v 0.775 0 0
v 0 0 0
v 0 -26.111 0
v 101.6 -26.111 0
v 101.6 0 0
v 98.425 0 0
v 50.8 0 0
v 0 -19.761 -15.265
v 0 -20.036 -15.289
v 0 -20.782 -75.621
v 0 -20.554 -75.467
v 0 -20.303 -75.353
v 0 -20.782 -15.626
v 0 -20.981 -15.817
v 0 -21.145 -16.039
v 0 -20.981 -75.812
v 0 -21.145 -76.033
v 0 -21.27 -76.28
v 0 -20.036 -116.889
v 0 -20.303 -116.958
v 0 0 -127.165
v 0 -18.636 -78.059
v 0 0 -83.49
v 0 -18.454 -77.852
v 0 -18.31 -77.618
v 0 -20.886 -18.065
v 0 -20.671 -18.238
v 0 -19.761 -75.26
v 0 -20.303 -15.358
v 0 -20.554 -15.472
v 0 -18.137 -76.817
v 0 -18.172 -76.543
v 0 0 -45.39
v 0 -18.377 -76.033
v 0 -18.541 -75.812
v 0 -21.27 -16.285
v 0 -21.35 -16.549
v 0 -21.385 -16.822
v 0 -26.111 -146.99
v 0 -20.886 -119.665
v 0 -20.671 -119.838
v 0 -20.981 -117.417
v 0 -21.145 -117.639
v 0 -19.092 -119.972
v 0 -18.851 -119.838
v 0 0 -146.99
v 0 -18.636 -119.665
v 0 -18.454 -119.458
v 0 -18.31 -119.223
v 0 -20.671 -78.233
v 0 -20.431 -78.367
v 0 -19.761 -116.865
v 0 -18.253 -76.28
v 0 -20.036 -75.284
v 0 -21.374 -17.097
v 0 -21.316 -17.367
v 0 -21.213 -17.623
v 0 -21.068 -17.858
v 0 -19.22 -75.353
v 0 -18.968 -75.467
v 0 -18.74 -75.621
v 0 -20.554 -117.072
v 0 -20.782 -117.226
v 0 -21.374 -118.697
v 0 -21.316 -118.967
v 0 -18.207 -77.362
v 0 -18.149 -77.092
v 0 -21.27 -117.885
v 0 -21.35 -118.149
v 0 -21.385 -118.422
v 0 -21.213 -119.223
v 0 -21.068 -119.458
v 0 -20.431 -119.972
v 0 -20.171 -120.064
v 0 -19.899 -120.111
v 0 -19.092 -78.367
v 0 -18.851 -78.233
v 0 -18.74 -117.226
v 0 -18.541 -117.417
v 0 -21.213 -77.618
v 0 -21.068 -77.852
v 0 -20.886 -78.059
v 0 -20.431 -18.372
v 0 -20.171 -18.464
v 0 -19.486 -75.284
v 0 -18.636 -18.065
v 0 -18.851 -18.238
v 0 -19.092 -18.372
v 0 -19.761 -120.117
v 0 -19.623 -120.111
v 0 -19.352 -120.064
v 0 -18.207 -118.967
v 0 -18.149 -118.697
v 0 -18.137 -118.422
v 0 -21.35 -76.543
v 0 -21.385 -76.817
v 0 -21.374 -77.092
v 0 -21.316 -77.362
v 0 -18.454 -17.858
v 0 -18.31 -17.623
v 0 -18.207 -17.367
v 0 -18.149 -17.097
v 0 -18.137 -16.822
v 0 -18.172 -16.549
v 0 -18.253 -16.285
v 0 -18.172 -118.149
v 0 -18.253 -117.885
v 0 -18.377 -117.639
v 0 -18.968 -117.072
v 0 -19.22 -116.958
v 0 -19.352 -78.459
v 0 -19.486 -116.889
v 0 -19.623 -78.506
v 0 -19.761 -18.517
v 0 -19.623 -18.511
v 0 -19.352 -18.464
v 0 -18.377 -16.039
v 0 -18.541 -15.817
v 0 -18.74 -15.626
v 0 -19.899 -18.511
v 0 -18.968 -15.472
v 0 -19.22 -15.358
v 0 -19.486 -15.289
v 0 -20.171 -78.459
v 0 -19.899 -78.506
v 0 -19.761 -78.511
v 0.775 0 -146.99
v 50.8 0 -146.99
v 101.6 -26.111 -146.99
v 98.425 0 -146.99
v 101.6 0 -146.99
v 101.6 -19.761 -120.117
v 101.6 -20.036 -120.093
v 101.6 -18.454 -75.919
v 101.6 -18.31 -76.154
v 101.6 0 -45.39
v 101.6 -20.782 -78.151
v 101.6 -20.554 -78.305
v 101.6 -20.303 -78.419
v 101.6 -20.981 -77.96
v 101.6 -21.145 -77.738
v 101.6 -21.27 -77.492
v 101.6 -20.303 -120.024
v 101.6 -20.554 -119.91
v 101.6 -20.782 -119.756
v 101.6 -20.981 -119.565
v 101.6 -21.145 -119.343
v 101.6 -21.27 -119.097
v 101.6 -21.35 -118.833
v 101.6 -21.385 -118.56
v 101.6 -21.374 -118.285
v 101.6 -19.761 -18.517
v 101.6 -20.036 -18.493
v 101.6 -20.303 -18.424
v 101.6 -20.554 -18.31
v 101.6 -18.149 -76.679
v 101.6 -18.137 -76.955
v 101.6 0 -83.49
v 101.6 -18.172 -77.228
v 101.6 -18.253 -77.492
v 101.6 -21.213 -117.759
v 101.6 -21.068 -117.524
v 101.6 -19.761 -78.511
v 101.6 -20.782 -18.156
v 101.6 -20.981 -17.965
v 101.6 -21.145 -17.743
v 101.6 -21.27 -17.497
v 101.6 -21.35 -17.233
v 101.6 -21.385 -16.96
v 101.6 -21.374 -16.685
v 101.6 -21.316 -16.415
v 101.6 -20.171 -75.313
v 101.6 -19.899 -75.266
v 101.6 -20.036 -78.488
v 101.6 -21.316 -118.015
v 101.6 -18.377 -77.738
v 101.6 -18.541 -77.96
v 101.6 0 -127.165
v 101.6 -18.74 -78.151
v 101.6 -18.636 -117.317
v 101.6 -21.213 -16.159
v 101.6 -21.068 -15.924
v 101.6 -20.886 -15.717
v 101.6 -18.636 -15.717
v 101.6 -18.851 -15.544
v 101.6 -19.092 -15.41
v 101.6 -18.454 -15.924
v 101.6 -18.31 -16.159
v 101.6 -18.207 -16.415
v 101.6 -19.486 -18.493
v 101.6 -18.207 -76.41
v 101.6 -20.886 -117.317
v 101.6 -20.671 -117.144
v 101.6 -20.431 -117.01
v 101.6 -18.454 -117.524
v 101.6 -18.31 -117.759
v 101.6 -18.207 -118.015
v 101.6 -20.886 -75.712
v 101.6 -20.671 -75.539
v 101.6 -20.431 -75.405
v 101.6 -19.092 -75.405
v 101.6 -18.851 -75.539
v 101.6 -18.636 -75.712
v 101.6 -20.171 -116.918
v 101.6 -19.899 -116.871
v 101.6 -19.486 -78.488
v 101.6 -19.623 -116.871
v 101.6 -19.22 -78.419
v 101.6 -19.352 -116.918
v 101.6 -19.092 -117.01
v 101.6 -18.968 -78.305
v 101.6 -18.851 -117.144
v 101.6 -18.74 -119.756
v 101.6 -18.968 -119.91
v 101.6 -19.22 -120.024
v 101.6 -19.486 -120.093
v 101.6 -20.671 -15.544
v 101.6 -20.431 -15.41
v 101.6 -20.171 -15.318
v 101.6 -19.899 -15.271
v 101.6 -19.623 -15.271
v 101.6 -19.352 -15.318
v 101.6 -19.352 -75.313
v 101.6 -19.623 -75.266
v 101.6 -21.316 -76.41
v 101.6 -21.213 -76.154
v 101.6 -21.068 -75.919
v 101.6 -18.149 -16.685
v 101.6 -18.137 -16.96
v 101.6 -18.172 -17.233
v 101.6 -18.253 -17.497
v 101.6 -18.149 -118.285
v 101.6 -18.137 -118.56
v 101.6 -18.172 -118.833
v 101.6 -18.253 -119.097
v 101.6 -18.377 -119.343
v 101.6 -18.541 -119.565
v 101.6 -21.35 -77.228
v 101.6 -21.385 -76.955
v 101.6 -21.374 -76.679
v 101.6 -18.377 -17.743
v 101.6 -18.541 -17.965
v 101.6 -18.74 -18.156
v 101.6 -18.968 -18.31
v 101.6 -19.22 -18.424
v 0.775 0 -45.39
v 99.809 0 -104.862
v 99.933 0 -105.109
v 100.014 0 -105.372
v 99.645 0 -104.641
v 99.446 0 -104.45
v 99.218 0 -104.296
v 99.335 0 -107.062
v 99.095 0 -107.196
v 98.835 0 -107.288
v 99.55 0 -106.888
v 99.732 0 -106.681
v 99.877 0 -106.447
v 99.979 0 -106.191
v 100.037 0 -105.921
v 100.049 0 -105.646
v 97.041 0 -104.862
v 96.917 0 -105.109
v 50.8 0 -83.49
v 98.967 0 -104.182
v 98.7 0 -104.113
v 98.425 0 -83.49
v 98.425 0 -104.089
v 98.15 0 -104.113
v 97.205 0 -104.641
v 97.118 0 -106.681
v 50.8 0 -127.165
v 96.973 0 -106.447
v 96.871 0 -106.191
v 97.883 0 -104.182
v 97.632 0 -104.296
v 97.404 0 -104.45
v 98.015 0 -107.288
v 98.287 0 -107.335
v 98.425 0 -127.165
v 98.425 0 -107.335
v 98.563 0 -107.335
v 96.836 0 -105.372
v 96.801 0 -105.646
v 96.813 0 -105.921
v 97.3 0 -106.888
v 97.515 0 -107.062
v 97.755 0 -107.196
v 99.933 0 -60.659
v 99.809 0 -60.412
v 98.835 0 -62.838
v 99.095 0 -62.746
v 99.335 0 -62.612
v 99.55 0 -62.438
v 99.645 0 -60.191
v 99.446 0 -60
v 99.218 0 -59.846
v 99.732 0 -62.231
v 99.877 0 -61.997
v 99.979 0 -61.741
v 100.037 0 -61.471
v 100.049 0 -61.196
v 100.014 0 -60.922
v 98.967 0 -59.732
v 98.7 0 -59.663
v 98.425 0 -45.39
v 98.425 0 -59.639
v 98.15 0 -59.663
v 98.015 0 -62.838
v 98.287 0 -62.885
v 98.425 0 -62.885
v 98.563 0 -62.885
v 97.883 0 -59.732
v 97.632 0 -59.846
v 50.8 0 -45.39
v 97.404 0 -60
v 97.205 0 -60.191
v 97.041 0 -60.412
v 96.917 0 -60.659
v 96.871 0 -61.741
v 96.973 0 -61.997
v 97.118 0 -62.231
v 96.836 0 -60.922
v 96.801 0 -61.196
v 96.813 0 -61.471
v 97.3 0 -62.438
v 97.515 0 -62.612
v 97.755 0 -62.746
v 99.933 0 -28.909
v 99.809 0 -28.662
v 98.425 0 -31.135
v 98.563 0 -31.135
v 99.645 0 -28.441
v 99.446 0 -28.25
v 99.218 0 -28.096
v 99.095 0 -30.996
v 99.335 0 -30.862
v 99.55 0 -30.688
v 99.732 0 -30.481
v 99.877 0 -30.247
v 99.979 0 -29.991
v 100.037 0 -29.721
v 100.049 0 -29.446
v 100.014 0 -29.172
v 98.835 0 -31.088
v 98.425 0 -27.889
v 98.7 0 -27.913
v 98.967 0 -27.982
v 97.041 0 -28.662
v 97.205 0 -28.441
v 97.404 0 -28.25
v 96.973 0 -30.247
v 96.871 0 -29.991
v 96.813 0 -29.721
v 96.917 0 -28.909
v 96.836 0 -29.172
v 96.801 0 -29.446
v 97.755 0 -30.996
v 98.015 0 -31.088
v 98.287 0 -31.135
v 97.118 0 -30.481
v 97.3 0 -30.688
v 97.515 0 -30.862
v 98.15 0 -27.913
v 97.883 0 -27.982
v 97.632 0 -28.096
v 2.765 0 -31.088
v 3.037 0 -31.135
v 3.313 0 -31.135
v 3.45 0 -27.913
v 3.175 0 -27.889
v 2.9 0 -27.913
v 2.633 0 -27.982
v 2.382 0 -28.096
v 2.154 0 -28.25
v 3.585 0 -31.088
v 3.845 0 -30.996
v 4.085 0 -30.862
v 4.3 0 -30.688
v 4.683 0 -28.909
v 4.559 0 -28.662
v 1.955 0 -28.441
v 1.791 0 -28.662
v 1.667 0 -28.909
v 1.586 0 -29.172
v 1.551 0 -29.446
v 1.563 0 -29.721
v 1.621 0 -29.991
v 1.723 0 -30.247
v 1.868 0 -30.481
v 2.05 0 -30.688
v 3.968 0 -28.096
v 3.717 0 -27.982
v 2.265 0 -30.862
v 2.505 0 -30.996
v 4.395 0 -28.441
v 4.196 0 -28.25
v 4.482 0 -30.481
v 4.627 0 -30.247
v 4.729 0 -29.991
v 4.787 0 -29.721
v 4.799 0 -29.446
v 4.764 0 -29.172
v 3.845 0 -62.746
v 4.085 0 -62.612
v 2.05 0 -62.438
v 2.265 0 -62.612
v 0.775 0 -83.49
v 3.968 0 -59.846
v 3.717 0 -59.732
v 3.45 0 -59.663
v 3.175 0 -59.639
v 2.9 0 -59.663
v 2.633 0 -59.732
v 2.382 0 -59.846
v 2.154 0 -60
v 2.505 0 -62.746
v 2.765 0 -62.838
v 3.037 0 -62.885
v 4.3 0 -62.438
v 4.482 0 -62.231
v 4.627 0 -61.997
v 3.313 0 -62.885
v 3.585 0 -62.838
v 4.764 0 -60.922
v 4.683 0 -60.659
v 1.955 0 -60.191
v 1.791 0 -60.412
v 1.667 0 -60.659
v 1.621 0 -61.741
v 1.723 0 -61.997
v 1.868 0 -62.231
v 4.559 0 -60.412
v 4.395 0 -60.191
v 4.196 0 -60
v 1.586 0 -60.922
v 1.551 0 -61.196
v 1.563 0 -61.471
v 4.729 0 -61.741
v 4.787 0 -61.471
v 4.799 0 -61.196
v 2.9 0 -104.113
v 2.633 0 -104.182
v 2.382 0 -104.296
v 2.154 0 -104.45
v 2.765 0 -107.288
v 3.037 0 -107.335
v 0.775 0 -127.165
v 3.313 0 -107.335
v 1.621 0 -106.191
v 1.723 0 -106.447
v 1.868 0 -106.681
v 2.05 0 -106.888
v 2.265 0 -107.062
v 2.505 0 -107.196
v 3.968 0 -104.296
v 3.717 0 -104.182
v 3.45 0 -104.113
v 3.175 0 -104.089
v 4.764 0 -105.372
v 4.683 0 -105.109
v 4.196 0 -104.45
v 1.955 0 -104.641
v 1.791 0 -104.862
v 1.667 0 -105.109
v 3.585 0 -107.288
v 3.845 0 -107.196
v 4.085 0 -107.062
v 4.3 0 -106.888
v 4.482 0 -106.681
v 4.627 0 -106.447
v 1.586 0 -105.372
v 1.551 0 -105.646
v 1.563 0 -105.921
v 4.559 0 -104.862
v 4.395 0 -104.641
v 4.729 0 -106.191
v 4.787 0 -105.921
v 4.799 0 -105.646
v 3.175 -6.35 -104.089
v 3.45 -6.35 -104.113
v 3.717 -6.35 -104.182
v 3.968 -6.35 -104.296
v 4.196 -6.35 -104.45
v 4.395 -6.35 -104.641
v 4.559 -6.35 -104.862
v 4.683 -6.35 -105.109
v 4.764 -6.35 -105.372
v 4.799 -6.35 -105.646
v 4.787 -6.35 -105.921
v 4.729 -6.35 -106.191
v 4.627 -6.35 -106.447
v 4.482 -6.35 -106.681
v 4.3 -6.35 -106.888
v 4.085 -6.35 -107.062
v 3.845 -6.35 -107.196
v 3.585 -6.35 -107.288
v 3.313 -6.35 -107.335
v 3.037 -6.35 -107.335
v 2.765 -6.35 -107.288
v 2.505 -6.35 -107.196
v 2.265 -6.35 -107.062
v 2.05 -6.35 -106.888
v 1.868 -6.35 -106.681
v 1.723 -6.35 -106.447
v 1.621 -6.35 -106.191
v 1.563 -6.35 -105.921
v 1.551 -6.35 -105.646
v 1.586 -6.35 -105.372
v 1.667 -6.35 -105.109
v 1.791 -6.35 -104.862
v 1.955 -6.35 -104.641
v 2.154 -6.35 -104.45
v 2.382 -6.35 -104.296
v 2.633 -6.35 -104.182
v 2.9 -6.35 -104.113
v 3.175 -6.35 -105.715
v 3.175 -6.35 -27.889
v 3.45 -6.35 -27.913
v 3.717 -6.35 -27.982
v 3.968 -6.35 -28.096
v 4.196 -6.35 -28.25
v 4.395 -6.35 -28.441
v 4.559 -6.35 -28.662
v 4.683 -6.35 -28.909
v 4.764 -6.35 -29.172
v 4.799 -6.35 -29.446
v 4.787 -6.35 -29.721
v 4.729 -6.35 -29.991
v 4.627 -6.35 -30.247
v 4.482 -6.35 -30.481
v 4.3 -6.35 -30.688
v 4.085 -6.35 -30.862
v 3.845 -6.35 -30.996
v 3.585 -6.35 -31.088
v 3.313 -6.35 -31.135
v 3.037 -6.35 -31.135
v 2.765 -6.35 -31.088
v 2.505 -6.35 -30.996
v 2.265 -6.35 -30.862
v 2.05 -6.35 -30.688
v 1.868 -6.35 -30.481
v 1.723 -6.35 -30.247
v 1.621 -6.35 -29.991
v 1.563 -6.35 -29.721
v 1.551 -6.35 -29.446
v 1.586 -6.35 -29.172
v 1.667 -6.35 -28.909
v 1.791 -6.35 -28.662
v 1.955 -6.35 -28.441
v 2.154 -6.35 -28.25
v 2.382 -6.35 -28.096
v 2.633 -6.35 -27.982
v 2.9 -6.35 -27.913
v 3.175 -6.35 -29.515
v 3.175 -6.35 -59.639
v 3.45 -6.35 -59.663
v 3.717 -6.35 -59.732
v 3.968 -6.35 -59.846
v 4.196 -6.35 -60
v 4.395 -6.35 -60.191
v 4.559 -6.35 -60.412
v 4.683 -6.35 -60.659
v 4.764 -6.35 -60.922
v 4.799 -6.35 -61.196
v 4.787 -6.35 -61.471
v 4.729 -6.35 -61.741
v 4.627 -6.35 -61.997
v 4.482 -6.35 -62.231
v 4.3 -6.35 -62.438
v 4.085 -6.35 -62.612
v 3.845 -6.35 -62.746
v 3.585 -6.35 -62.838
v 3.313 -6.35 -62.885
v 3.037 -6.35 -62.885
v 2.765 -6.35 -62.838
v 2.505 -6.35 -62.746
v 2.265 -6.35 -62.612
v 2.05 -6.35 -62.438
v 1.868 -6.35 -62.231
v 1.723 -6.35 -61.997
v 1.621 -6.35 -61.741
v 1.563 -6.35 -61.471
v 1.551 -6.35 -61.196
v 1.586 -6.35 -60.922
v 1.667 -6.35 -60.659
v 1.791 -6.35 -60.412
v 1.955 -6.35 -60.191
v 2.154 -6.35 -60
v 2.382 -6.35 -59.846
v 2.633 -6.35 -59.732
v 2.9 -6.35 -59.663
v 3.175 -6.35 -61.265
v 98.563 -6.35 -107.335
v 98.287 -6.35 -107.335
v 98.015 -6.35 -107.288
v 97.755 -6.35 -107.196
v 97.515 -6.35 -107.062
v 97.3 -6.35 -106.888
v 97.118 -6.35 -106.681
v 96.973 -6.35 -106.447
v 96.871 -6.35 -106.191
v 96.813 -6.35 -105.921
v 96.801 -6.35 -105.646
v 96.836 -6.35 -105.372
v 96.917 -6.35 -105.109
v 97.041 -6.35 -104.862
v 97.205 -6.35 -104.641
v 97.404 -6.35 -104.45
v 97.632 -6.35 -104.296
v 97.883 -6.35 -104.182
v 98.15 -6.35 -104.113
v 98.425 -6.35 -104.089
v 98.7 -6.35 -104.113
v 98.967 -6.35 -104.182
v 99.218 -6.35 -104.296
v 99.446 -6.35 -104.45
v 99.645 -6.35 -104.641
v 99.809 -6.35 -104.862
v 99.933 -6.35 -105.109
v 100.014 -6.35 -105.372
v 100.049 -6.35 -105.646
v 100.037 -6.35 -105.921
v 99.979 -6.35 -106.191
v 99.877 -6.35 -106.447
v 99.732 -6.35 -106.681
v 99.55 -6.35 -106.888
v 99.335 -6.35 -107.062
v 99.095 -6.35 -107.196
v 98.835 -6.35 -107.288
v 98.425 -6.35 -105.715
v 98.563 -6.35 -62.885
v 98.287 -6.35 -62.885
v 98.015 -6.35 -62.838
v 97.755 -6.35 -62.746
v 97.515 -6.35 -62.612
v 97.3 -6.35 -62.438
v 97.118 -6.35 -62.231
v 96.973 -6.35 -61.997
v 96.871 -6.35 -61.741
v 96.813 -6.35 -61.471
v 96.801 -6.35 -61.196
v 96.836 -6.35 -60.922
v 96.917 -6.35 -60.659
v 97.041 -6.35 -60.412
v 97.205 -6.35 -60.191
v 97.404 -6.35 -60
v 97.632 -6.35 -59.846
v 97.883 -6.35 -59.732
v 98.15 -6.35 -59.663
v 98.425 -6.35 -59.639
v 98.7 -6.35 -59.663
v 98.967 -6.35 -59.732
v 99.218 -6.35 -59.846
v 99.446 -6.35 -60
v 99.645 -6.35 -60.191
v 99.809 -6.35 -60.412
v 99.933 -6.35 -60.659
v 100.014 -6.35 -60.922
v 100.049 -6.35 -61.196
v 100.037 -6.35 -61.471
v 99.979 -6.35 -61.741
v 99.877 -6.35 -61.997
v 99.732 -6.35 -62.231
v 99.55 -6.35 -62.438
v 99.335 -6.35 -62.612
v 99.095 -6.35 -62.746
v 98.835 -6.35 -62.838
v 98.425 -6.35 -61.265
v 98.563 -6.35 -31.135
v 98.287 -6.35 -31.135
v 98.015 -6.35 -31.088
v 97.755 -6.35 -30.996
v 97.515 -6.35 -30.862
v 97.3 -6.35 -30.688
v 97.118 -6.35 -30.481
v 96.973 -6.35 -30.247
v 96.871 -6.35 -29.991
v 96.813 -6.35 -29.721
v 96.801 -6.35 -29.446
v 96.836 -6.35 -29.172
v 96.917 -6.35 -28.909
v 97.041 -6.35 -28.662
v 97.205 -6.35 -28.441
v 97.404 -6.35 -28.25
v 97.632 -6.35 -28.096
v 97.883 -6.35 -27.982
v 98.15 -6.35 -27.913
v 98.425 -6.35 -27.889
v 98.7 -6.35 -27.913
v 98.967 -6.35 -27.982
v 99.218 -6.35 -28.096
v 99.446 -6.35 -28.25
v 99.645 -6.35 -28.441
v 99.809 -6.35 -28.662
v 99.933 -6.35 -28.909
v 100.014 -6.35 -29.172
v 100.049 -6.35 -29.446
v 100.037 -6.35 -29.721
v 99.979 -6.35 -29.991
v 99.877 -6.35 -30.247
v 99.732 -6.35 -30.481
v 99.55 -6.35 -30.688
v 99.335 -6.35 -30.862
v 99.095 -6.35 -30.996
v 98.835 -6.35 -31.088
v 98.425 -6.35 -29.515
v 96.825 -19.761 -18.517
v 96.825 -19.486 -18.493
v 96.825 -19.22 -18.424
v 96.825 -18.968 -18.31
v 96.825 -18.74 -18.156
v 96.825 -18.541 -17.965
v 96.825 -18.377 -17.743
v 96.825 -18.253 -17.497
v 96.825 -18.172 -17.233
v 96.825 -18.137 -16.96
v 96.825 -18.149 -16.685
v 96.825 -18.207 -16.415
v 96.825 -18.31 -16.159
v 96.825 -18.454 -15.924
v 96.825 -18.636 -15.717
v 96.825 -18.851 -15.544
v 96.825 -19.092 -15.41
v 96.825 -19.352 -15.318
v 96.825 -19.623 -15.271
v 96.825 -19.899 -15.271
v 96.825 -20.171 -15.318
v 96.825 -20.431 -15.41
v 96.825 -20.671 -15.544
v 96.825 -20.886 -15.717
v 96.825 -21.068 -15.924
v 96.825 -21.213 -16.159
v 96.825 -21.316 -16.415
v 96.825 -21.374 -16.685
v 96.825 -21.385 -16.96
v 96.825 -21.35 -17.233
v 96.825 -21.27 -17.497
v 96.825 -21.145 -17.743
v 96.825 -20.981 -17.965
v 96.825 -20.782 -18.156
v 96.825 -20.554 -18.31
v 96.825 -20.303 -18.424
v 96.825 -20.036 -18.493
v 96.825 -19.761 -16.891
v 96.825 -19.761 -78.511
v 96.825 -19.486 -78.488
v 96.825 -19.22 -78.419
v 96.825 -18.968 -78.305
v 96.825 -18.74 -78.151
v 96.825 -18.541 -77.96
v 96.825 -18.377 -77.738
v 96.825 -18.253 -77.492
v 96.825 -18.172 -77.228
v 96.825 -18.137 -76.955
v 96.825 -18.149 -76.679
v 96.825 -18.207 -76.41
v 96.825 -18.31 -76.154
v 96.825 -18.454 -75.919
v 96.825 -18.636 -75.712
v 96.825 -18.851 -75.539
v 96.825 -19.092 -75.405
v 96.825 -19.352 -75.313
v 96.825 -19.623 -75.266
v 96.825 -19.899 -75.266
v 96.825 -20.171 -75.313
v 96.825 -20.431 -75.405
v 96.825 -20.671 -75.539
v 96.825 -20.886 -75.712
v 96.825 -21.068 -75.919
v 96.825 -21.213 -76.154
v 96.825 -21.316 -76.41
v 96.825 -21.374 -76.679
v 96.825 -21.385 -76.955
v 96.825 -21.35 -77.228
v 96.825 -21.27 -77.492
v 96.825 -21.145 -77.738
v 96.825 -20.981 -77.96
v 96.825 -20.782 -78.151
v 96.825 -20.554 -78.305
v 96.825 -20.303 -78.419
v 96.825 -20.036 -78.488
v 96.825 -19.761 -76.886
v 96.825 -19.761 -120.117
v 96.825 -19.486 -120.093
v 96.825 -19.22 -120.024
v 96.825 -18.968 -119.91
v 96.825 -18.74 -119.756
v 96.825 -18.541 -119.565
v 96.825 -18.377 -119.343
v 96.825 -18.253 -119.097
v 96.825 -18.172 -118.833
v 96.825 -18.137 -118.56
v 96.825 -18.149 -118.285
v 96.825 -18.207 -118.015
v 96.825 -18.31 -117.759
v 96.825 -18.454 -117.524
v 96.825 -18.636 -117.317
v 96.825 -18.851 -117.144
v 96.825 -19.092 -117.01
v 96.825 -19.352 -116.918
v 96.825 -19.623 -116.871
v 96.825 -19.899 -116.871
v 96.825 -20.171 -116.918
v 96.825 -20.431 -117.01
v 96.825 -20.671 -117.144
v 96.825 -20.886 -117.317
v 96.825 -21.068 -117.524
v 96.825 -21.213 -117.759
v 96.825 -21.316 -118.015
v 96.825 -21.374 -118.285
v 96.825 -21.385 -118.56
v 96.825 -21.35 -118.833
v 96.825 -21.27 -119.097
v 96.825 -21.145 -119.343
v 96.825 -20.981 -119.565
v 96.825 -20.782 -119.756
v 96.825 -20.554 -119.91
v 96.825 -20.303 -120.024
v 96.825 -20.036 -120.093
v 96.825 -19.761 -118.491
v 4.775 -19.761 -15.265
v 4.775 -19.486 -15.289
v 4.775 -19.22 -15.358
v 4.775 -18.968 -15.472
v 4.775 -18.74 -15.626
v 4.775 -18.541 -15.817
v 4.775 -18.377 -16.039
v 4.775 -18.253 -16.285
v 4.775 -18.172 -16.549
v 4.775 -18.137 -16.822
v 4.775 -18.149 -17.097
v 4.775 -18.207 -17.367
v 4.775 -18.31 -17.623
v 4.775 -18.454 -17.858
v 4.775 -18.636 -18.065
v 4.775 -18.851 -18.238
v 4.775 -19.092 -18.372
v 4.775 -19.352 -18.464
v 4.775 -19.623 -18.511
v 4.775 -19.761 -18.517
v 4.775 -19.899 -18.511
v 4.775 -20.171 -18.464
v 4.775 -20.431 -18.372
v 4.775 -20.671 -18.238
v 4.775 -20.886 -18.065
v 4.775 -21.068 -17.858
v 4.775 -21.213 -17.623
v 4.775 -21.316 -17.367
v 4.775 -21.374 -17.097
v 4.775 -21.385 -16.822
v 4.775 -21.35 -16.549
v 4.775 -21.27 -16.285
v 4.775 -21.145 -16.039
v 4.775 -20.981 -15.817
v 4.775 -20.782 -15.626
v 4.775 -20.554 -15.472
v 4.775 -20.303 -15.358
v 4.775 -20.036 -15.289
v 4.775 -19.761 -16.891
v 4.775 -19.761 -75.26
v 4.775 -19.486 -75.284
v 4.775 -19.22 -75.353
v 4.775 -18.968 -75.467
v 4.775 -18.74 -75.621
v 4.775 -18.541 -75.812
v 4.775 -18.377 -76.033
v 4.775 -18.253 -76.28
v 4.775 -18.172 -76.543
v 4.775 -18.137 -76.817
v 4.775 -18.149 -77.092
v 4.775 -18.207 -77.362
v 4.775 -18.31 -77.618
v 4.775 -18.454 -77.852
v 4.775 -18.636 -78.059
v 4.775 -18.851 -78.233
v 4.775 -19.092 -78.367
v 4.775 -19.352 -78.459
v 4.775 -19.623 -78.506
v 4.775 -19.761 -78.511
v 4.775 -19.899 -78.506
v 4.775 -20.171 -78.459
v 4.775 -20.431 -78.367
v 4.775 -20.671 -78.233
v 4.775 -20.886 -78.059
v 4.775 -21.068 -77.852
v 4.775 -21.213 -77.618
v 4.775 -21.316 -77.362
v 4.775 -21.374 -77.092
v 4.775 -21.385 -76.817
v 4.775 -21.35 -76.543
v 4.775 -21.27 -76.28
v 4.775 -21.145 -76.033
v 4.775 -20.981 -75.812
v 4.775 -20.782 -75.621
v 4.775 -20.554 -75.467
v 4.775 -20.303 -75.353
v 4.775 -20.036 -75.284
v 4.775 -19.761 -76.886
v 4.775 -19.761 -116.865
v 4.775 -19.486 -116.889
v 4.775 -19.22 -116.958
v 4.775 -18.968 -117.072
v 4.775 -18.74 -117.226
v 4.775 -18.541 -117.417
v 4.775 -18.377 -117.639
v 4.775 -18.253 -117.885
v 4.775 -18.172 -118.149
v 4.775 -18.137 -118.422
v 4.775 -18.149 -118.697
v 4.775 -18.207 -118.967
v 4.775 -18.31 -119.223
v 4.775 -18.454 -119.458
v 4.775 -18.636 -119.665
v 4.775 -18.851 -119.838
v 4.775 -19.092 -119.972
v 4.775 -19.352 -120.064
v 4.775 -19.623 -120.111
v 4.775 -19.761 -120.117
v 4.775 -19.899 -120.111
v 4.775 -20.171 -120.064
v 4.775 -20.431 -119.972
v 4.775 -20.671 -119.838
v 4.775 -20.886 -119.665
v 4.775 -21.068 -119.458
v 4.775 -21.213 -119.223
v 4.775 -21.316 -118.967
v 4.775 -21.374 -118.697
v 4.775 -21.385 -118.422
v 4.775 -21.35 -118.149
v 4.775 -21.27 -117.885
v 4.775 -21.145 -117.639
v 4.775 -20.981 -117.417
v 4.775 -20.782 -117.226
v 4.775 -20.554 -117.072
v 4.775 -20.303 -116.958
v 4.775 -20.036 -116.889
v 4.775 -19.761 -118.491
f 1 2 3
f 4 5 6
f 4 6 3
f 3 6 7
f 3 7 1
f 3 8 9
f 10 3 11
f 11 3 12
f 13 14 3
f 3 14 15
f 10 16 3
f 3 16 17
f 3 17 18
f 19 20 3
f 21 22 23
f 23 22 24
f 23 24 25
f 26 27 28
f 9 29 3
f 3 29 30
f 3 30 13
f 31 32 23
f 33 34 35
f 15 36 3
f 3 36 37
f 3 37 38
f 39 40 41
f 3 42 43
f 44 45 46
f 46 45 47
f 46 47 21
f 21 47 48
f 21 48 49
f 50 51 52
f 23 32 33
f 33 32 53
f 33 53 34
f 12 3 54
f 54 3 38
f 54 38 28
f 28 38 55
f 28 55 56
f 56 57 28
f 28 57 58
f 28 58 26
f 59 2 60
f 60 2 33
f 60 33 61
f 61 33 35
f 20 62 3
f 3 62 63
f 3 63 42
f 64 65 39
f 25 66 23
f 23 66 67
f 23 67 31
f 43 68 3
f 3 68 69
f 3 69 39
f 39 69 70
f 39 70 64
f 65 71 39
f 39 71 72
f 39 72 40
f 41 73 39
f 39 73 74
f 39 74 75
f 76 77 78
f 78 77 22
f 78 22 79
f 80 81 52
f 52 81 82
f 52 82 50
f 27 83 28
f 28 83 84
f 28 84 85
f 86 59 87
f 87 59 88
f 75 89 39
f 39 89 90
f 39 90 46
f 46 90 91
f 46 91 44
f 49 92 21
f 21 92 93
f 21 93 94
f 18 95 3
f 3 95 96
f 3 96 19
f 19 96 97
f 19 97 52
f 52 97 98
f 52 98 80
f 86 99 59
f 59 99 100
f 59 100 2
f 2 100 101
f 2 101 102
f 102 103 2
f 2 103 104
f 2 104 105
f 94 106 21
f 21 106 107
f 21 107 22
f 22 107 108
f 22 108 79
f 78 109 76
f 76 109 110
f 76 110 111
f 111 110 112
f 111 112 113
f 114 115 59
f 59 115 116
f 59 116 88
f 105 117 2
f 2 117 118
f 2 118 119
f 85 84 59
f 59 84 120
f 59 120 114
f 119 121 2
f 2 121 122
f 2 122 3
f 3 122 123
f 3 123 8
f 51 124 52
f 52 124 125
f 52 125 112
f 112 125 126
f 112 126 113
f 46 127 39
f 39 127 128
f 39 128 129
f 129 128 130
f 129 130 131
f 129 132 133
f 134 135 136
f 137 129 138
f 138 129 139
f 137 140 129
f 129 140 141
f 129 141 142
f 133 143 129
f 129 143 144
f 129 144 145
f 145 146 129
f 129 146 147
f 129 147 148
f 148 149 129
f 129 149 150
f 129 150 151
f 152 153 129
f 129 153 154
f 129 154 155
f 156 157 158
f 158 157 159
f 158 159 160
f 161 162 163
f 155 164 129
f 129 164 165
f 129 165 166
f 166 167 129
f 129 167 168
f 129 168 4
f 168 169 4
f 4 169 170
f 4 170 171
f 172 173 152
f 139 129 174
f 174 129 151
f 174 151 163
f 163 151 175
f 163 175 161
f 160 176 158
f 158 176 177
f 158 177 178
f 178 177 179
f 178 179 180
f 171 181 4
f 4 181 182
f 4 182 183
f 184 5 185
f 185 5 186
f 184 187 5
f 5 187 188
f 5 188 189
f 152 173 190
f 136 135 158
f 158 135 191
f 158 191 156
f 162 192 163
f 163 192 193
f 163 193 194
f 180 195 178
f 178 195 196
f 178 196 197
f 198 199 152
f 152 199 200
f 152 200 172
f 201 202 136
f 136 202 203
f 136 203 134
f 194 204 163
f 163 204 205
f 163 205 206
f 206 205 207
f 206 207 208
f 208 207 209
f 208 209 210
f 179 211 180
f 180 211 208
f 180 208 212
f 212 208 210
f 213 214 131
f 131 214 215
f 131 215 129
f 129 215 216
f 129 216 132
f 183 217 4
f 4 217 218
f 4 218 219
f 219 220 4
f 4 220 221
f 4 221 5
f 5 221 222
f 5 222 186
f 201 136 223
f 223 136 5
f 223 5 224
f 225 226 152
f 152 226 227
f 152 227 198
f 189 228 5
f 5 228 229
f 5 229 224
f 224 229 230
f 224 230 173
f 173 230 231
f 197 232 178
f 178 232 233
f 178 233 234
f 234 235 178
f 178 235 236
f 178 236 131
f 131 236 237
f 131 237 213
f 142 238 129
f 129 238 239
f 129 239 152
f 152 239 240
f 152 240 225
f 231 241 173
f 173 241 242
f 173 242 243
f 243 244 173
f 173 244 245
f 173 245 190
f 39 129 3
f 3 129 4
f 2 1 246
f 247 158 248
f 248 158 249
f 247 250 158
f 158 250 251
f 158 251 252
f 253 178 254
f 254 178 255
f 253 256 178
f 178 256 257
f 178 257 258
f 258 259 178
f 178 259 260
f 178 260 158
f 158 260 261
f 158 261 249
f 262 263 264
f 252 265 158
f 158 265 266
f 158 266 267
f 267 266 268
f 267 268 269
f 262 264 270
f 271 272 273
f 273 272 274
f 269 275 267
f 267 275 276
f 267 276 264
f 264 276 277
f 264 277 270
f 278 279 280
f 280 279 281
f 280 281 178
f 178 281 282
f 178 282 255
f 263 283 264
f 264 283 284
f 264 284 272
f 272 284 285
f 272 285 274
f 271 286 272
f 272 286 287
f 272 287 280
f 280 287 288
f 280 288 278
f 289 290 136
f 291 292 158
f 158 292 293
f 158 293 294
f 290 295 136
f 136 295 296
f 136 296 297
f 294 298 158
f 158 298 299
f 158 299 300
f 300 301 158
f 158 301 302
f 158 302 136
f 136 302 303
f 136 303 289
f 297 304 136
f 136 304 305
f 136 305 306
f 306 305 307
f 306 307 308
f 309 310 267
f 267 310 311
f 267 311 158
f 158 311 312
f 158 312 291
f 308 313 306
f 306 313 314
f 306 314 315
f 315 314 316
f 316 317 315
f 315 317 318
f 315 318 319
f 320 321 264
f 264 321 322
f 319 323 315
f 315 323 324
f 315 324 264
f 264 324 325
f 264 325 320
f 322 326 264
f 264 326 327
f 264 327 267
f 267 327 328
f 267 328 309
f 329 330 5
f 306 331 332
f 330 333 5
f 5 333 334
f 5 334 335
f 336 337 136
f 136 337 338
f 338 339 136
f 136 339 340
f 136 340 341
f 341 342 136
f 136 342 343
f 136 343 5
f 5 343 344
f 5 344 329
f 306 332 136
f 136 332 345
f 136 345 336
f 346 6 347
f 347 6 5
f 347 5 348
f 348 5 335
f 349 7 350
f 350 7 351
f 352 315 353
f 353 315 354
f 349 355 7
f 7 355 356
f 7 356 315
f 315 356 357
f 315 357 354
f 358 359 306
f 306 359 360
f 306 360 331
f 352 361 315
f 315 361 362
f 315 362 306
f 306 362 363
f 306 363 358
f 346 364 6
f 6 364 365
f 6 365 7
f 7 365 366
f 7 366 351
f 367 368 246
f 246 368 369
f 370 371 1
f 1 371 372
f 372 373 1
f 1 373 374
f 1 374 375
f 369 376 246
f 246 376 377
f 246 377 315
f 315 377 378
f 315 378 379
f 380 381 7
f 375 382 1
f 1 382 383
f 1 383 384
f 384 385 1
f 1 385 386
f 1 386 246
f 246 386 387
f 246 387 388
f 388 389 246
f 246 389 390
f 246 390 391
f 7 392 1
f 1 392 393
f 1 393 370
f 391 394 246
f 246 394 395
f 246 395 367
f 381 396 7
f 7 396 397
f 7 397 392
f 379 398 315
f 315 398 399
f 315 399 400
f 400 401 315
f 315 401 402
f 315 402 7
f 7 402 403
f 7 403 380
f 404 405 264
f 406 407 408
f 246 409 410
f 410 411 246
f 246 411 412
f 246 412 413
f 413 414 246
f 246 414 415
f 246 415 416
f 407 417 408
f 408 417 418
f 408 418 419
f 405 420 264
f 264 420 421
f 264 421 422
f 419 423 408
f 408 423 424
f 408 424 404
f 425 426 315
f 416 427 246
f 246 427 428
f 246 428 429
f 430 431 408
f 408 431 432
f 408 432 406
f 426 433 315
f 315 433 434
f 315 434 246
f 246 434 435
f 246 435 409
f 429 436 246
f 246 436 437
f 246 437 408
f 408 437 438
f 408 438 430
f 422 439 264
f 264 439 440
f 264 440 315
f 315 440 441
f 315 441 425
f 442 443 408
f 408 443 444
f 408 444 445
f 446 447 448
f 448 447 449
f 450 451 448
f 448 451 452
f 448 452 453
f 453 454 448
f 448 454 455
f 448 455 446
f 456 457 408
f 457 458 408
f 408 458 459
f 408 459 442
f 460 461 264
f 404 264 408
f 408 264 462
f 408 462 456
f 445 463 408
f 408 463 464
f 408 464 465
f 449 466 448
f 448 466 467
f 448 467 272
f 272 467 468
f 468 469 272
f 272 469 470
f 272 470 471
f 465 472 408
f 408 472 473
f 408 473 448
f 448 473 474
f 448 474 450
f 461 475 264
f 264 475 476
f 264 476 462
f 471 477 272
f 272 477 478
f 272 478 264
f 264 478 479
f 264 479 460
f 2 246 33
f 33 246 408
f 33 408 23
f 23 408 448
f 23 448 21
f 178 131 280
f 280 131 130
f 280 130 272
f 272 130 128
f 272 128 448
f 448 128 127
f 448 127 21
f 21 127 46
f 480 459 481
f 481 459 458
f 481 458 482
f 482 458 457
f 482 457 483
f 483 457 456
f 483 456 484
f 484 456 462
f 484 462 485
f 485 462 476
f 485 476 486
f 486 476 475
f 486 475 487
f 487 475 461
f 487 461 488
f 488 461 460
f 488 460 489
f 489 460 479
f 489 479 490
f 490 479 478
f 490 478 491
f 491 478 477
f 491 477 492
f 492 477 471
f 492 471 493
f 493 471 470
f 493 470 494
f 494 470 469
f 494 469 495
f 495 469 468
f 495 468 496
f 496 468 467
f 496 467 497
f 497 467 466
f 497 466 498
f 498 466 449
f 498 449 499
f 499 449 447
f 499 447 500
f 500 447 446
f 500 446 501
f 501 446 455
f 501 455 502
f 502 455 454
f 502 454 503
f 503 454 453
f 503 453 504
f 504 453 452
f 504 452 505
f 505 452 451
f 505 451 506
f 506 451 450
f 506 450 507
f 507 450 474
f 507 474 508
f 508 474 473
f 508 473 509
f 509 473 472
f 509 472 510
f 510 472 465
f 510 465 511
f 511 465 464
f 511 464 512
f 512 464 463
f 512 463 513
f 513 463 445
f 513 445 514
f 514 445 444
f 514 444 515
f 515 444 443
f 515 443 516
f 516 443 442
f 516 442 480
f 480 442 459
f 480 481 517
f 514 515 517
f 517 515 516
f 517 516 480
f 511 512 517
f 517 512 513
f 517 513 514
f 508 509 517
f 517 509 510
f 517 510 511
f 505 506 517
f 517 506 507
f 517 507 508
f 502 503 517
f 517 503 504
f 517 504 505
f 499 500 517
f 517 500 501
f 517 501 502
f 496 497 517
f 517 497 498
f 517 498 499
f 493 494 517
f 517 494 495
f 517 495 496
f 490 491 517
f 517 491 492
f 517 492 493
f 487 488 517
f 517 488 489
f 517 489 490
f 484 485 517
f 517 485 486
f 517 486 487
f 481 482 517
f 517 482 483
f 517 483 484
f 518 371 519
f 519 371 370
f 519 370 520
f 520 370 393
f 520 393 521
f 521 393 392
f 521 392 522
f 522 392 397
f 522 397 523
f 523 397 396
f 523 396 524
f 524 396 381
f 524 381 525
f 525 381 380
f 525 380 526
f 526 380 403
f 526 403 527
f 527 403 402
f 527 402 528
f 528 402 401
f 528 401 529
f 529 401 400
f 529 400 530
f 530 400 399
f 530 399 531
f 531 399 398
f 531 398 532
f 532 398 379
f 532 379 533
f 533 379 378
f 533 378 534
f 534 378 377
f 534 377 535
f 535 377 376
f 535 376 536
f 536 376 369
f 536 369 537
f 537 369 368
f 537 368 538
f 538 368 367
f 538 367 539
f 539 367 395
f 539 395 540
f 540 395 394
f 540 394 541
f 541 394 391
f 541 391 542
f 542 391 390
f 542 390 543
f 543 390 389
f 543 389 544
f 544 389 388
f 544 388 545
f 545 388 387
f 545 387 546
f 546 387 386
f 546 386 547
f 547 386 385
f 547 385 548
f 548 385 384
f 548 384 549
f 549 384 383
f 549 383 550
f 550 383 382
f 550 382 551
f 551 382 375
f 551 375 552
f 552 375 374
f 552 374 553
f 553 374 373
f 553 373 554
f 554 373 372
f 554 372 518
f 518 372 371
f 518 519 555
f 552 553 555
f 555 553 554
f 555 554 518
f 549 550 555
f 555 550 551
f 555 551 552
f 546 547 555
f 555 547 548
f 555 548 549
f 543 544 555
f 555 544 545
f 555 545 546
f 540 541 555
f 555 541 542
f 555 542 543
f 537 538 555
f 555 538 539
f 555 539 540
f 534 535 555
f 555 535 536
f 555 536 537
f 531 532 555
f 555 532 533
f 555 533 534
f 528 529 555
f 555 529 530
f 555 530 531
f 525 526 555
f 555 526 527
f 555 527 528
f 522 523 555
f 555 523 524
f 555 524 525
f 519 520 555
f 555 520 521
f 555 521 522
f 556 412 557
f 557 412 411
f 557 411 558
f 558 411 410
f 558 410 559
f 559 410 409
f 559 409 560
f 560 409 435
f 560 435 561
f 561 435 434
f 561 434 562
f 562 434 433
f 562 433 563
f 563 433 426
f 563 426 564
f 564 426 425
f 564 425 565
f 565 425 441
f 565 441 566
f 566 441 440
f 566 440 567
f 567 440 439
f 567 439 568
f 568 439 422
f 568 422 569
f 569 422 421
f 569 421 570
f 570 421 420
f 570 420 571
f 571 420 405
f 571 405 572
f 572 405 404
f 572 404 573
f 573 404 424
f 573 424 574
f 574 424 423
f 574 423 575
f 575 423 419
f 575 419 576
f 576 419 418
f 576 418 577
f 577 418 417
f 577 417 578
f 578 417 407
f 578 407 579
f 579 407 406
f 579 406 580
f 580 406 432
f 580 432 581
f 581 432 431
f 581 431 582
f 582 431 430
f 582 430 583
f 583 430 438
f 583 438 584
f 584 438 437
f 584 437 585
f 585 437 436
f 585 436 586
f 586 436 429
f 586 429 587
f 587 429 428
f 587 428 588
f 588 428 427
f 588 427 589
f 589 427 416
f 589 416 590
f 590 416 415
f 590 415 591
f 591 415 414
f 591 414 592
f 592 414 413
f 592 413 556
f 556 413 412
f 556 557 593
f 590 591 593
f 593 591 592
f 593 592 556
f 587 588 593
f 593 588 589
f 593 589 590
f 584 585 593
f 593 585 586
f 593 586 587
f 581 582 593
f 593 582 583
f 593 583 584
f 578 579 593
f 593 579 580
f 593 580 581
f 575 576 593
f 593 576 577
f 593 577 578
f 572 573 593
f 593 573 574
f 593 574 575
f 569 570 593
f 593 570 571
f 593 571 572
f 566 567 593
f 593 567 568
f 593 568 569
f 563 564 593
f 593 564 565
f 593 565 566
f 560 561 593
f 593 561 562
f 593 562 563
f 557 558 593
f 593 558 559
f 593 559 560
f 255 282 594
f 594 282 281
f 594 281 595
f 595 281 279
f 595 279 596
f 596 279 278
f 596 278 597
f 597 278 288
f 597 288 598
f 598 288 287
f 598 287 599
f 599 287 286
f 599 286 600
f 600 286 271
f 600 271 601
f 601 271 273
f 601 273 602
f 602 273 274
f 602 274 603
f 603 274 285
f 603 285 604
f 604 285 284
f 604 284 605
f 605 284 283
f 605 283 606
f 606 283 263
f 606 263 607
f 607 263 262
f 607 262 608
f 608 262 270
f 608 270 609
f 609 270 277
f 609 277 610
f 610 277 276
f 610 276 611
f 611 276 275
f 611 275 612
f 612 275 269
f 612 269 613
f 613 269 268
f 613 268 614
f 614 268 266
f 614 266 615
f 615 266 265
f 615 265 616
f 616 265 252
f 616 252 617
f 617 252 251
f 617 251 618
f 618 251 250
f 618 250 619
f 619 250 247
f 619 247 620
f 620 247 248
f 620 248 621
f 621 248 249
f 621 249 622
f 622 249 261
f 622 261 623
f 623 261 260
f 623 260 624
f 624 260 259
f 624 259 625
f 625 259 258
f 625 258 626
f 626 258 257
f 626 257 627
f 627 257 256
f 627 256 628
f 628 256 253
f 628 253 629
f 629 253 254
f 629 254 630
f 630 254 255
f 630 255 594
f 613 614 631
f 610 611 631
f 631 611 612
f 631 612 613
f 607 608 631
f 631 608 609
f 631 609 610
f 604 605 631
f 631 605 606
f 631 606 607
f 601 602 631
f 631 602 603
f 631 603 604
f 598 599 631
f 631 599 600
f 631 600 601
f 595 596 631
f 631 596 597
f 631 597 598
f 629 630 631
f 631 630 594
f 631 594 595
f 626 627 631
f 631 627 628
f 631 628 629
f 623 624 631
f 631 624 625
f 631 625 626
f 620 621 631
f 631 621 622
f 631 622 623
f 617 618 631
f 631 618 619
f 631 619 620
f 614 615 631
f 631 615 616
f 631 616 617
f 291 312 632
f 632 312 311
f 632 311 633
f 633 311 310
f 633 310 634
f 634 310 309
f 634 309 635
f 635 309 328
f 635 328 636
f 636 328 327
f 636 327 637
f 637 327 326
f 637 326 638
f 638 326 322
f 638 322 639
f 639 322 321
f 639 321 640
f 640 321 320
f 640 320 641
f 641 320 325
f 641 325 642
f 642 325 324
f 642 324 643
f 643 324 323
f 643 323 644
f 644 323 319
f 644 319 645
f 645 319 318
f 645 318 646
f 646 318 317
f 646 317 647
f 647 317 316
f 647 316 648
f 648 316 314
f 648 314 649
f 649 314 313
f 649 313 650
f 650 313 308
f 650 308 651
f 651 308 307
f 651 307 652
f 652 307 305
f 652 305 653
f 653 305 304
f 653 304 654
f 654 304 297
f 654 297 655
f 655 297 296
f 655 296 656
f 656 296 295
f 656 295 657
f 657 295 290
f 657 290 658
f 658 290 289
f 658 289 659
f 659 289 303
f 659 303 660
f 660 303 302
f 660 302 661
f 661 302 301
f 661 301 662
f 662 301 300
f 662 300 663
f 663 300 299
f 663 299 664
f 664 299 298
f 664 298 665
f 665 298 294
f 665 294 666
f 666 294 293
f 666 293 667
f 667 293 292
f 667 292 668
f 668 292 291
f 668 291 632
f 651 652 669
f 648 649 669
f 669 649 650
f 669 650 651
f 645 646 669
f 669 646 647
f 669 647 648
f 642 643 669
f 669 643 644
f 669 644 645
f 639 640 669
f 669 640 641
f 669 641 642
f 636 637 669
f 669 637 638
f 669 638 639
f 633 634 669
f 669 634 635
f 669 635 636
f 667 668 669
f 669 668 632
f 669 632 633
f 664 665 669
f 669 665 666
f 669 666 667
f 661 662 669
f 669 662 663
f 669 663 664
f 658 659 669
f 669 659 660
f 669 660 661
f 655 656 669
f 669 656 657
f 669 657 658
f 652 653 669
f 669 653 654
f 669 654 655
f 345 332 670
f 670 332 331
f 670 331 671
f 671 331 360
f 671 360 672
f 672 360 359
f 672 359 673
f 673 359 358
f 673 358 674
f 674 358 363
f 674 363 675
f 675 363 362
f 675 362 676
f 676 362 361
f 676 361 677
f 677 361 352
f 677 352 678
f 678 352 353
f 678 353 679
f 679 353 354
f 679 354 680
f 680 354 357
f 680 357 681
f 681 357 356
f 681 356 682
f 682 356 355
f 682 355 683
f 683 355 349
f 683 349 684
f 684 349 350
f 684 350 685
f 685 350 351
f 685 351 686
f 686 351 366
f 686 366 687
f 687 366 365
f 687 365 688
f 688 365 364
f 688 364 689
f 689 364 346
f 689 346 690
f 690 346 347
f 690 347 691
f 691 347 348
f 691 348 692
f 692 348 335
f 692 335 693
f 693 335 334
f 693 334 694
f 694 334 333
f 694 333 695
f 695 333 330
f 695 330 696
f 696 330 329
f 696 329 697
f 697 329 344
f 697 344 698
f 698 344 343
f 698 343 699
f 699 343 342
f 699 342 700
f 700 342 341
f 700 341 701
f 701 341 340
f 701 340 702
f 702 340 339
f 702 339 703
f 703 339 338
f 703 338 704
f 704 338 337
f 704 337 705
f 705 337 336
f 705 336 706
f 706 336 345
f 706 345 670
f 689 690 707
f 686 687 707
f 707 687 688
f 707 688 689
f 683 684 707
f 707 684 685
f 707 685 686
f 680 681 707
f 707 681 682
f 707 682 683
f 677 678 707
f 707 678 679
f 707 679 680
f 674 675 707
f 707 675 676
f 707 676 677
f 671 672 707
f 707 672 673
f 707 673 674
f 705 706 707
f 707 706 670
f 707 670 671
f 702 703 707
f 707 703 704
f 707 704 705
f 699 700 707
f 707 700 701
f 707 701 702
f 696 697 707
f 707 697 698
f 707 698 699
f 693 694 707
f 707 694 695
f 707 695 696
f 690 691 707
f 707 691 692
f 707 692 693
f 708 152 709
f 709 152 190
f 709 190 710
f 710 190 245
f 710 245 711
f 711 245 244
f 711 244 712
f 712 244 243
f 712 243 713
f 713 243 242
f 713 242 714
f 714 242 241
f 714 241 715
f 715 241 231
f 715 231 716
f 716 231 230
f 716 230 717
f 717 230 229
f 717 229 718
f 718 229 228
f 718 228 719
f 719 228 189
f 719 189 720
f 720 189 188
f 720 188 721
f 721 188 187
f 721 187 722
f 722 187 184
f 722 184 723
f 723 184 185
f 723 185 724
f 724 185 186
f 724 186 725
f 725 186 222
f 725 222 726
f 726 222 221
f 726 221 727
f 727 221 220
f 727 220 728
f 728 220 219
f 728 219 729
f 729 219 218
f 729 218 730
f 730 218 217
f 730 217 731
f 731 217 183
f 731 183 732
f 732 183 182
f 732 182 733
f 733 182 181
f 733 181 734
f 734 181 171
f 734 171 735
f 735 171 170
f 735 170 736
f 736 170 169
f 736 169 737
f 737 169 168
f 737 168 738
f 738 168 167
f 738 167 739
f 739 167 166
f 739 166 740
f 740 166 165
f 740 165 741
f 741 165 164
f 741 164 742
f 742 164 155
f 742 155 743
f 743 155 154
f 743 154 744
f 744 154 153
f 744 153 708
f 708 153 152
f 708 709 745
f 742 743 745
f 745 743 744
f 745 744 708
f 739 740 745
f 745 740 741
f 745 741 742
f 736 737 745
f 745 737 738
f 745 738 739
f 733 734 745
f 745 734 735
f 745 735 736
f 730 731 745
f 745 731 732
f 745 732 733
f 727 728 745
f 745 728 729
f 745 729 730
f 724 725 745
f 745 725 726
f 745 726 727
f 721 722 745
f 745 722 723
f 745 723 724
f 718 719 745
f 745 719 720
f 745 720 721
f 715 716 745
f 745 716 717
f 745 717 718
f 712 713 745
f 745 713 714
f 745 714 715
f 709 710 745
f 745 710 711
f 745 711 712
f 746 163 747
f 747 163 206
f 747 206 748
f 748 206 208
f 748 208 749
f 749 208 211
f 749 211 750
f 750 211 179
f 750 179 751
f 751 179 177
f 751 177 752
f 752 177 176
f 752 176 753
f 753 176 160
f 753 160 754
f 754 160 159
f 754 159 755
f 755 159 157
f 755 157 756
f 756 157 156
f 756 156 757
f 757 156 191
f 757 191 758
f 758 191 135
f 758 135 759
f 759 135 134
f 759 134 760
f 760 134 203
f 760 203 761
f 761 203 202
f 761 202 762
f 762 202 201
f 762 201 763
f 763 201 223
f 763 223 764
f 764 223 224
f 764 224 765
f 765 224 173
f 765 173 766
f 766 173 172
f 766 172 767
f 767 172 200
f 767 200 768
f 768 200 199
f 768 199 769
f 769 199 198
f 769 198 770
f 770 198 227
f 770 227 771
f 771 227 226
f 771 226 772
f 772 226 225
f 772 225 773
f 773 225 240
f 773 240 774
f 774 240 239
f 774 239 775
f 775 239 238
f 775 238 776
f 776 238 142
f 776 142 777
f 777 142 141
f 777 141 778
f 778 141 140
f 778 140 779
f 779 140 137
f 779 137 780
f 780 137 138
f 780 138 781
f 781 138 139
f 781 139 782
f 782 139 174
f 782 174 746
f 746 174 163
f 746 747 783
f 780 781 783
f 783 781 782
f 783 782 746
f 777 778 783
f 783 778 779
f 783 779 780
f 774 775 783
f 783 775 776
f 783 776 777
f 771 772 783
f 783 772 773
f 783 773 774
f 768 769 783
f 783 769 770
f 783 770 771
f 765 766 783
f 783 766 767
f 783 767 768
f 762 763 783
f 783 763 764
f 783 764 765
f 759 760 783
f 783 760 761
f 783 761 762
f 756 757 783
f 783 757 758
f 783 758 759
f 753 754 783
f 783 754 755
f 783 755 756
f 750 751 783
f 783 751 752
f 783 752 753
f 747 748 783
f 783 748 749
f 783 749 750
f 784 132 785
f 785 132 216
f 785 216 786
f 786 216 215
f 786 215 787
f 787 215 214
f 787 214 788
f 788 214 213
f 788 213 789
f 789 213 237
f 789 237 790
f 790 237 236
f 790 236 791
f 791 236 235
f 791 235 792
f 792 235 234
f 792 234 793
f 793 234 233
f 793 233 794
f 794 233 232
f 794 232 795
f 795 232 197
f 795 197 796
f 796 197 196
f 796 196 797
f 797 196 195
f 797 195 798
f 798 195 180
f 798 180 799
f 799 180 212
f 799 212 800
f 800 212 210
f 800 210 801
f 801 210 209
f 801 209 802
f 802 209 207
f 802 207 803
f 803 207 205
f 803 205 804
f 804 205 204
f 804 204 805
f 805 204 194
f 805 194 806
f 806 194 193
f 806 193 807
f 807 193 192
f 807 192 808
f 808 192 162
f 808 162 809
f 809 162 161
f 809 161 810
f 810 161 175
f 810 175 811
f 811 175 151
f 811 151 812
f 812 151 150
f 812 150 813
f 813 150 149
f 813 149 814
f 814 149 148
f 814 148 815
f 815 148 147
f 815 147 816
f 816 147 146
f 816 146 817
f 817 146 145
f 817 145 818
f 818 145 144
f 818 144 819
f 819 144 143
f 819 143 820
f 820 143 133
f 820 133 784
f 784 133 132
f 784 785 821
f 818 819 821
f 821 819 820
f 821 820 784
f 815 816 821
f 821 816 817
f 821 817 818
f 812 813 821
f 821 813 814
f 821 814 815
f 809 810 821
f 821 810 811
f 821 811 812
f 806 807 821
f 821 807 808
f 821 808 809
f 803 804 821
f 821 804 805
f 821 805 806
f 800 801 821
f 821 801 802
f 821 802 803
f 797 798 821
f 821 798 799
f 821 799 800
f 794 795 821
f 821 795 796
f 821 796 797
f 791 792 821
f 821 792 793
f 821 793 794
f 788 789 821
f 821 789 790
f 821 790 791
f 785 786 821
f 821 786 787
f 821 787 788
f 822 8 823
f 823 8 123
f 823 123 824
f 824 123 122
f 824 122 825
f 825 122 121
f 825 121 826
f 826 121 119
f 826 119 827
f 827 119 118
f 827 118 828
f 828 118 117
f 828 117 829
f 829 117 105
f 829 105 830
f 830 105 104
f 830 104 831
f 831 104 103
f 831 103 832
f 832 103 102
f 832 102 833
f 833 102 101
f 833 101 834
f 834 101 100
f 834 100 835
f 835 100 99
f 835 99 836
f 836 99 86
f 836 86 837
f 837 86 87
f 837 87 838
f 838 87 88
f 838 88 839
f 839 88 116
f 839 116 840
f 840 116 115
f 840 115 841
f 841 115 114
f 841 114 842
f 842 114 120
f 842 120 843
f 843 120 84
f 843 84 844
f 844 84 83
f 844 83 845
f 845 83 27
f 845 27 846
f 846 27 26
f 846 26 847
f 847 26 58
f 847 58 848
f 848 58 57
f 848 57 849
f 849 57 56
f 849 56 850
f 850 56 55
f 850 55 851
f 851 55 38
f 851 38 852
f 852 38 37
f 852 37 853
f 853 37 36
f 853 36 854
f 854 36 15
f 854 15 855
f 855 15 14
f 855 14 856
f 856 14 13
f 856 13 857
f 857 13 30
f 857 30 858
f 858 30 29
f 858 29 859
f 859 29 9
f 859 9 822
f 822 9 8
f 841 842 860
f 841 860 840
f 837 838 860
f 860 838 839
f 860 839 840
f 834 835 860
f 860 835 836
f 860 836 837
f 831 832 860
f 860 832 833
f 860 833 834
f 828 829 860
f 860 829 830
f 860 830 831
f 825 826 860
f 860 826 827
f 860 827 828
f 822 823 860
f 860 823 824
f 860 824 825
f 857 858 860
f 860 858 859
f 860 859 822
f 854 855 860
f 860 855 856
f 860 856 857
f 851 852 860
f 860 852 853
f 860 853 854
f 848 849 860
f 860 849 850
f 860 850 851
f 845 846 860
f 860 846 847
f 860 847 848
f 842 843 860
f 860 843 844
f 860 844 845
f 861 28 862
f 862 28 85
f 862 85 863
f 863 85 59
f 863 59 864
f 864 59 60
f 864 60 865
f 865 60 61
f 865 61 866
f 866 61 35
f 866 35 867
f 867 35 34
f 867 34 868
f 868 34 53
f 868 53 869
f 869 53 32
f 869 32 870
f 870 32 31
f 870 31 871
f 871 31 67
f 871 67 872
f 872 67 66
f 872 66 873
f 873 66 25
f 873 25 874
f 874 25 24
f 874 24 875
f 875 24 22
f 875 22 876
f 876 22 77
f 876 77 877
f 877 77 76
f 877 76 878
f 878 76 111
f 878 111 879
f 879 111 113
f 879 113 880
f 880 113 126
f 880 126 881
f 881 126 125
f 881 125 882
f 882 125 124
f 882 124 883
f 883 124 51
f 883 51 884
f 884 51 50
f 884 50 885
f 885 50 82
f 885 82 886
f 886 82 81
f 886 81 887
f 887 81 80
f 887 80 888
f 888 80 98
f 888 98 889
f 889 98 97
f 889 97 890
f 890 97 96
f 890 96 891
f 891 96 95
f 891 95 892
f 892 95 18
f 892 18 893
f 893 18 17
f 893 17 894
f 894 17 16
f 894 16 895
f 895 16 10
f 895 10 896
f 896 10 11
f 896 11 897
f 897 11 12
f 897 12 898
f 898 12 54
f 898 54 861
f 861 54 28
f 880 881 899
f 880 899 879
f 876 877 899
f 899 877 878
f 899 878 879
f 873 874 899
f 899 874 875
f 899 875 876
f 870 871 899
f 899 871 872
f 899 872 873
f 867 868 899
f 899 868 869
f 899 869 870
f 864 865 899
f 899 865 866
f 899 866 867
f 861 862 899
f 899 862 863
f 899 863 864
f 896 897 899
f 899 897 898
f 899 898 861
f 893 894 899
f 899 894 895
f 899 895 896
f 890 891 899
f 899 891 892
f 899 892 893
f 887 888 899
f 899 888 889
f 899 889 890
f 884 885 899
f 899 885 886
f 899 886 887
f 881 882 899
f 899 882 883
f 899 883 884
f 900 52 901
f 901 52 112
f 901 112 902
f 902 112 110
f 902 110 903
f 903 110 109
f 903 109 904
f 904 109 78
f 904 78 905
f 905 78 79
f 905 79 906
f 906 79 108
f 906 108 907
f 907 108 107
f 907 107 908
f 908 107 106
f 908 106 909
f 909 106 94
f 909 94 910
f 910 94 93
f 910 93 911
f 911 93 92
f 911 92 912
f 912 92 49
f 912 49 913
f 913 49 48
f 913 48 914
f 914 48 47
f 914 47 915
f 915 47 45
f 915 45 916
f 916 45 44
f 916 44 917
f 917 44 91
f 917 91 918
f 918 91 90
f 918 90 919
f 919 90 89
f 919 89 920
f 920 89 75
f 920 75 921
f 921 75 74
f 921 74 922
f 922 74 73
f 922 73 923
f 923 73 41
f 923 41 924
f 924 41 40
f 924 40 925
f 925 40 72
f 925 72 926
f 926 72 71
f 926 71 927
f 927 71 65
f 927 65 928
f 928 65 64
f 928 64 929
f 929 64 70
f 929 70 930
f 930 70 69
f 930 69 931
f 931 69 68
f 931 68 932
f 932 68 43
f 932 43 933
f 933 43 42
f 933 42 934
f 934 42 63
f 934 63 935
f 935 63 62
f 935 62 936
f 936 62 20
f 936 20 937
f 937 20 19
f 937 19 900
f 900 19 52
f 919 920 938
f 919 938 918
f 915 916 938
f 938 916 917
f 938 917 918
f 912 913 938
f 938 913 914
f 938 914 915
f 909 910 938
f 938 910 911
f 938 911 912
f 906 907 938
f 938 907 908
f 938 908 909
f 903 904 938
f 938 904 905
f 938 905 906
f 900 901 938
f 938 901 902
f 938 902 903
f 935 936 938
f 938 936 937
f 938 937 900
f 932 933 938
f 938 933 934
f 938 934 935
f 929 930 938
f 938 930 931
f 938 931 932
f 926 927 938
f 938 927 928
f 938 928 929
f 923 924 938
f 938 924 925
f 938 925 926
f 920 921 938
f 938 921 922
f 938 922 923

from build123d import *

# Parameters (mm, degrees)
SKETCH_1_W          = 101.6
SKETCH_1_H          = 146.9898
EXTRUDE_1_DEPTH     = 26.1112
SKETCH_1_3_R        = 1.6256
CUT_EXTRUDE_1_DEPTH = 6.35
SKETCH_2_R          = 1.6256
CUT_EXTRUDE_2_DEPTH = 4.7752


with BuildPart() as part:
    # 스케치1 → 보스-돌출1 (new body)
    with BuildSketch(Plane(origin=(0, 0, 0), x_dir=(1, 0, 0), z_dir=(0, 1, 0))):
        with Locations((50.8, 73.4949)):
            Rectangle(SKETCH_1_W, SKETCH_1_H)
    extrude(amount=-EXTRUDE_1_DEPTH)

    # 스케치1<3> → 컷-돌출1 (cut)
    with BuildSketch(Plane(origin=(0, 0, 0), x_dir=(1, 0, 0), z_dir=(0, 1, 0))):
        with Locations((3.175, 105.7148)):
            Circle(SKETCH_1_3_R)
        with Locations((98.425, 105.7148)):
            Circle(SKETCH_1_3_R)
        with Locations((3.175, 61.2648)):
            Circle(SKETCH_1_3_R)
        with Locations((98.425, 61.2648)):
            Circle(SKETCH_1_3_R)
        with Locations((3.175, 29.5148)):
            Circle(SKETCH_1_3_R)
        with Locations((98.425, 29.5148)):
            Circle(SKETCH_1_3_R)
    extrude(amount=-CUT_EXTRUDE_1_DEPTH, mode=Mode.SUBTRACT)

    # 스케치2 → 컷-돌출2 (cut)
    with BuildSketch(Plane(origin=(101.6, 0, 0), x_dir=(0, 0, -1), z_dir=(1, 0, 0))):
        with Locations((16.891, -19.7612)):
            Circle(SKETCH_2_R)
        with Locations((76.8858, -19.7612)):
            Circle(SKETCH_2_R)
        with Locations((118.491, -19.7612)):
            Circle(SKETCH_2_R)
    cut_extrude_2 = extrude(amount=-CUT_EXTRUDE_2_DEPTH, mode=Mode.SUBTRACT)

    # 대칭 복사1: 컷-돌출2 across plane
    add(cut_extrude_2.mirror(Plane(origin=(50.8, 0, 0), x_dir=(0, 0, 1), z_dir=(1, 0, 0))), mode=Mode.SUBTRACT)


solid = part.part
